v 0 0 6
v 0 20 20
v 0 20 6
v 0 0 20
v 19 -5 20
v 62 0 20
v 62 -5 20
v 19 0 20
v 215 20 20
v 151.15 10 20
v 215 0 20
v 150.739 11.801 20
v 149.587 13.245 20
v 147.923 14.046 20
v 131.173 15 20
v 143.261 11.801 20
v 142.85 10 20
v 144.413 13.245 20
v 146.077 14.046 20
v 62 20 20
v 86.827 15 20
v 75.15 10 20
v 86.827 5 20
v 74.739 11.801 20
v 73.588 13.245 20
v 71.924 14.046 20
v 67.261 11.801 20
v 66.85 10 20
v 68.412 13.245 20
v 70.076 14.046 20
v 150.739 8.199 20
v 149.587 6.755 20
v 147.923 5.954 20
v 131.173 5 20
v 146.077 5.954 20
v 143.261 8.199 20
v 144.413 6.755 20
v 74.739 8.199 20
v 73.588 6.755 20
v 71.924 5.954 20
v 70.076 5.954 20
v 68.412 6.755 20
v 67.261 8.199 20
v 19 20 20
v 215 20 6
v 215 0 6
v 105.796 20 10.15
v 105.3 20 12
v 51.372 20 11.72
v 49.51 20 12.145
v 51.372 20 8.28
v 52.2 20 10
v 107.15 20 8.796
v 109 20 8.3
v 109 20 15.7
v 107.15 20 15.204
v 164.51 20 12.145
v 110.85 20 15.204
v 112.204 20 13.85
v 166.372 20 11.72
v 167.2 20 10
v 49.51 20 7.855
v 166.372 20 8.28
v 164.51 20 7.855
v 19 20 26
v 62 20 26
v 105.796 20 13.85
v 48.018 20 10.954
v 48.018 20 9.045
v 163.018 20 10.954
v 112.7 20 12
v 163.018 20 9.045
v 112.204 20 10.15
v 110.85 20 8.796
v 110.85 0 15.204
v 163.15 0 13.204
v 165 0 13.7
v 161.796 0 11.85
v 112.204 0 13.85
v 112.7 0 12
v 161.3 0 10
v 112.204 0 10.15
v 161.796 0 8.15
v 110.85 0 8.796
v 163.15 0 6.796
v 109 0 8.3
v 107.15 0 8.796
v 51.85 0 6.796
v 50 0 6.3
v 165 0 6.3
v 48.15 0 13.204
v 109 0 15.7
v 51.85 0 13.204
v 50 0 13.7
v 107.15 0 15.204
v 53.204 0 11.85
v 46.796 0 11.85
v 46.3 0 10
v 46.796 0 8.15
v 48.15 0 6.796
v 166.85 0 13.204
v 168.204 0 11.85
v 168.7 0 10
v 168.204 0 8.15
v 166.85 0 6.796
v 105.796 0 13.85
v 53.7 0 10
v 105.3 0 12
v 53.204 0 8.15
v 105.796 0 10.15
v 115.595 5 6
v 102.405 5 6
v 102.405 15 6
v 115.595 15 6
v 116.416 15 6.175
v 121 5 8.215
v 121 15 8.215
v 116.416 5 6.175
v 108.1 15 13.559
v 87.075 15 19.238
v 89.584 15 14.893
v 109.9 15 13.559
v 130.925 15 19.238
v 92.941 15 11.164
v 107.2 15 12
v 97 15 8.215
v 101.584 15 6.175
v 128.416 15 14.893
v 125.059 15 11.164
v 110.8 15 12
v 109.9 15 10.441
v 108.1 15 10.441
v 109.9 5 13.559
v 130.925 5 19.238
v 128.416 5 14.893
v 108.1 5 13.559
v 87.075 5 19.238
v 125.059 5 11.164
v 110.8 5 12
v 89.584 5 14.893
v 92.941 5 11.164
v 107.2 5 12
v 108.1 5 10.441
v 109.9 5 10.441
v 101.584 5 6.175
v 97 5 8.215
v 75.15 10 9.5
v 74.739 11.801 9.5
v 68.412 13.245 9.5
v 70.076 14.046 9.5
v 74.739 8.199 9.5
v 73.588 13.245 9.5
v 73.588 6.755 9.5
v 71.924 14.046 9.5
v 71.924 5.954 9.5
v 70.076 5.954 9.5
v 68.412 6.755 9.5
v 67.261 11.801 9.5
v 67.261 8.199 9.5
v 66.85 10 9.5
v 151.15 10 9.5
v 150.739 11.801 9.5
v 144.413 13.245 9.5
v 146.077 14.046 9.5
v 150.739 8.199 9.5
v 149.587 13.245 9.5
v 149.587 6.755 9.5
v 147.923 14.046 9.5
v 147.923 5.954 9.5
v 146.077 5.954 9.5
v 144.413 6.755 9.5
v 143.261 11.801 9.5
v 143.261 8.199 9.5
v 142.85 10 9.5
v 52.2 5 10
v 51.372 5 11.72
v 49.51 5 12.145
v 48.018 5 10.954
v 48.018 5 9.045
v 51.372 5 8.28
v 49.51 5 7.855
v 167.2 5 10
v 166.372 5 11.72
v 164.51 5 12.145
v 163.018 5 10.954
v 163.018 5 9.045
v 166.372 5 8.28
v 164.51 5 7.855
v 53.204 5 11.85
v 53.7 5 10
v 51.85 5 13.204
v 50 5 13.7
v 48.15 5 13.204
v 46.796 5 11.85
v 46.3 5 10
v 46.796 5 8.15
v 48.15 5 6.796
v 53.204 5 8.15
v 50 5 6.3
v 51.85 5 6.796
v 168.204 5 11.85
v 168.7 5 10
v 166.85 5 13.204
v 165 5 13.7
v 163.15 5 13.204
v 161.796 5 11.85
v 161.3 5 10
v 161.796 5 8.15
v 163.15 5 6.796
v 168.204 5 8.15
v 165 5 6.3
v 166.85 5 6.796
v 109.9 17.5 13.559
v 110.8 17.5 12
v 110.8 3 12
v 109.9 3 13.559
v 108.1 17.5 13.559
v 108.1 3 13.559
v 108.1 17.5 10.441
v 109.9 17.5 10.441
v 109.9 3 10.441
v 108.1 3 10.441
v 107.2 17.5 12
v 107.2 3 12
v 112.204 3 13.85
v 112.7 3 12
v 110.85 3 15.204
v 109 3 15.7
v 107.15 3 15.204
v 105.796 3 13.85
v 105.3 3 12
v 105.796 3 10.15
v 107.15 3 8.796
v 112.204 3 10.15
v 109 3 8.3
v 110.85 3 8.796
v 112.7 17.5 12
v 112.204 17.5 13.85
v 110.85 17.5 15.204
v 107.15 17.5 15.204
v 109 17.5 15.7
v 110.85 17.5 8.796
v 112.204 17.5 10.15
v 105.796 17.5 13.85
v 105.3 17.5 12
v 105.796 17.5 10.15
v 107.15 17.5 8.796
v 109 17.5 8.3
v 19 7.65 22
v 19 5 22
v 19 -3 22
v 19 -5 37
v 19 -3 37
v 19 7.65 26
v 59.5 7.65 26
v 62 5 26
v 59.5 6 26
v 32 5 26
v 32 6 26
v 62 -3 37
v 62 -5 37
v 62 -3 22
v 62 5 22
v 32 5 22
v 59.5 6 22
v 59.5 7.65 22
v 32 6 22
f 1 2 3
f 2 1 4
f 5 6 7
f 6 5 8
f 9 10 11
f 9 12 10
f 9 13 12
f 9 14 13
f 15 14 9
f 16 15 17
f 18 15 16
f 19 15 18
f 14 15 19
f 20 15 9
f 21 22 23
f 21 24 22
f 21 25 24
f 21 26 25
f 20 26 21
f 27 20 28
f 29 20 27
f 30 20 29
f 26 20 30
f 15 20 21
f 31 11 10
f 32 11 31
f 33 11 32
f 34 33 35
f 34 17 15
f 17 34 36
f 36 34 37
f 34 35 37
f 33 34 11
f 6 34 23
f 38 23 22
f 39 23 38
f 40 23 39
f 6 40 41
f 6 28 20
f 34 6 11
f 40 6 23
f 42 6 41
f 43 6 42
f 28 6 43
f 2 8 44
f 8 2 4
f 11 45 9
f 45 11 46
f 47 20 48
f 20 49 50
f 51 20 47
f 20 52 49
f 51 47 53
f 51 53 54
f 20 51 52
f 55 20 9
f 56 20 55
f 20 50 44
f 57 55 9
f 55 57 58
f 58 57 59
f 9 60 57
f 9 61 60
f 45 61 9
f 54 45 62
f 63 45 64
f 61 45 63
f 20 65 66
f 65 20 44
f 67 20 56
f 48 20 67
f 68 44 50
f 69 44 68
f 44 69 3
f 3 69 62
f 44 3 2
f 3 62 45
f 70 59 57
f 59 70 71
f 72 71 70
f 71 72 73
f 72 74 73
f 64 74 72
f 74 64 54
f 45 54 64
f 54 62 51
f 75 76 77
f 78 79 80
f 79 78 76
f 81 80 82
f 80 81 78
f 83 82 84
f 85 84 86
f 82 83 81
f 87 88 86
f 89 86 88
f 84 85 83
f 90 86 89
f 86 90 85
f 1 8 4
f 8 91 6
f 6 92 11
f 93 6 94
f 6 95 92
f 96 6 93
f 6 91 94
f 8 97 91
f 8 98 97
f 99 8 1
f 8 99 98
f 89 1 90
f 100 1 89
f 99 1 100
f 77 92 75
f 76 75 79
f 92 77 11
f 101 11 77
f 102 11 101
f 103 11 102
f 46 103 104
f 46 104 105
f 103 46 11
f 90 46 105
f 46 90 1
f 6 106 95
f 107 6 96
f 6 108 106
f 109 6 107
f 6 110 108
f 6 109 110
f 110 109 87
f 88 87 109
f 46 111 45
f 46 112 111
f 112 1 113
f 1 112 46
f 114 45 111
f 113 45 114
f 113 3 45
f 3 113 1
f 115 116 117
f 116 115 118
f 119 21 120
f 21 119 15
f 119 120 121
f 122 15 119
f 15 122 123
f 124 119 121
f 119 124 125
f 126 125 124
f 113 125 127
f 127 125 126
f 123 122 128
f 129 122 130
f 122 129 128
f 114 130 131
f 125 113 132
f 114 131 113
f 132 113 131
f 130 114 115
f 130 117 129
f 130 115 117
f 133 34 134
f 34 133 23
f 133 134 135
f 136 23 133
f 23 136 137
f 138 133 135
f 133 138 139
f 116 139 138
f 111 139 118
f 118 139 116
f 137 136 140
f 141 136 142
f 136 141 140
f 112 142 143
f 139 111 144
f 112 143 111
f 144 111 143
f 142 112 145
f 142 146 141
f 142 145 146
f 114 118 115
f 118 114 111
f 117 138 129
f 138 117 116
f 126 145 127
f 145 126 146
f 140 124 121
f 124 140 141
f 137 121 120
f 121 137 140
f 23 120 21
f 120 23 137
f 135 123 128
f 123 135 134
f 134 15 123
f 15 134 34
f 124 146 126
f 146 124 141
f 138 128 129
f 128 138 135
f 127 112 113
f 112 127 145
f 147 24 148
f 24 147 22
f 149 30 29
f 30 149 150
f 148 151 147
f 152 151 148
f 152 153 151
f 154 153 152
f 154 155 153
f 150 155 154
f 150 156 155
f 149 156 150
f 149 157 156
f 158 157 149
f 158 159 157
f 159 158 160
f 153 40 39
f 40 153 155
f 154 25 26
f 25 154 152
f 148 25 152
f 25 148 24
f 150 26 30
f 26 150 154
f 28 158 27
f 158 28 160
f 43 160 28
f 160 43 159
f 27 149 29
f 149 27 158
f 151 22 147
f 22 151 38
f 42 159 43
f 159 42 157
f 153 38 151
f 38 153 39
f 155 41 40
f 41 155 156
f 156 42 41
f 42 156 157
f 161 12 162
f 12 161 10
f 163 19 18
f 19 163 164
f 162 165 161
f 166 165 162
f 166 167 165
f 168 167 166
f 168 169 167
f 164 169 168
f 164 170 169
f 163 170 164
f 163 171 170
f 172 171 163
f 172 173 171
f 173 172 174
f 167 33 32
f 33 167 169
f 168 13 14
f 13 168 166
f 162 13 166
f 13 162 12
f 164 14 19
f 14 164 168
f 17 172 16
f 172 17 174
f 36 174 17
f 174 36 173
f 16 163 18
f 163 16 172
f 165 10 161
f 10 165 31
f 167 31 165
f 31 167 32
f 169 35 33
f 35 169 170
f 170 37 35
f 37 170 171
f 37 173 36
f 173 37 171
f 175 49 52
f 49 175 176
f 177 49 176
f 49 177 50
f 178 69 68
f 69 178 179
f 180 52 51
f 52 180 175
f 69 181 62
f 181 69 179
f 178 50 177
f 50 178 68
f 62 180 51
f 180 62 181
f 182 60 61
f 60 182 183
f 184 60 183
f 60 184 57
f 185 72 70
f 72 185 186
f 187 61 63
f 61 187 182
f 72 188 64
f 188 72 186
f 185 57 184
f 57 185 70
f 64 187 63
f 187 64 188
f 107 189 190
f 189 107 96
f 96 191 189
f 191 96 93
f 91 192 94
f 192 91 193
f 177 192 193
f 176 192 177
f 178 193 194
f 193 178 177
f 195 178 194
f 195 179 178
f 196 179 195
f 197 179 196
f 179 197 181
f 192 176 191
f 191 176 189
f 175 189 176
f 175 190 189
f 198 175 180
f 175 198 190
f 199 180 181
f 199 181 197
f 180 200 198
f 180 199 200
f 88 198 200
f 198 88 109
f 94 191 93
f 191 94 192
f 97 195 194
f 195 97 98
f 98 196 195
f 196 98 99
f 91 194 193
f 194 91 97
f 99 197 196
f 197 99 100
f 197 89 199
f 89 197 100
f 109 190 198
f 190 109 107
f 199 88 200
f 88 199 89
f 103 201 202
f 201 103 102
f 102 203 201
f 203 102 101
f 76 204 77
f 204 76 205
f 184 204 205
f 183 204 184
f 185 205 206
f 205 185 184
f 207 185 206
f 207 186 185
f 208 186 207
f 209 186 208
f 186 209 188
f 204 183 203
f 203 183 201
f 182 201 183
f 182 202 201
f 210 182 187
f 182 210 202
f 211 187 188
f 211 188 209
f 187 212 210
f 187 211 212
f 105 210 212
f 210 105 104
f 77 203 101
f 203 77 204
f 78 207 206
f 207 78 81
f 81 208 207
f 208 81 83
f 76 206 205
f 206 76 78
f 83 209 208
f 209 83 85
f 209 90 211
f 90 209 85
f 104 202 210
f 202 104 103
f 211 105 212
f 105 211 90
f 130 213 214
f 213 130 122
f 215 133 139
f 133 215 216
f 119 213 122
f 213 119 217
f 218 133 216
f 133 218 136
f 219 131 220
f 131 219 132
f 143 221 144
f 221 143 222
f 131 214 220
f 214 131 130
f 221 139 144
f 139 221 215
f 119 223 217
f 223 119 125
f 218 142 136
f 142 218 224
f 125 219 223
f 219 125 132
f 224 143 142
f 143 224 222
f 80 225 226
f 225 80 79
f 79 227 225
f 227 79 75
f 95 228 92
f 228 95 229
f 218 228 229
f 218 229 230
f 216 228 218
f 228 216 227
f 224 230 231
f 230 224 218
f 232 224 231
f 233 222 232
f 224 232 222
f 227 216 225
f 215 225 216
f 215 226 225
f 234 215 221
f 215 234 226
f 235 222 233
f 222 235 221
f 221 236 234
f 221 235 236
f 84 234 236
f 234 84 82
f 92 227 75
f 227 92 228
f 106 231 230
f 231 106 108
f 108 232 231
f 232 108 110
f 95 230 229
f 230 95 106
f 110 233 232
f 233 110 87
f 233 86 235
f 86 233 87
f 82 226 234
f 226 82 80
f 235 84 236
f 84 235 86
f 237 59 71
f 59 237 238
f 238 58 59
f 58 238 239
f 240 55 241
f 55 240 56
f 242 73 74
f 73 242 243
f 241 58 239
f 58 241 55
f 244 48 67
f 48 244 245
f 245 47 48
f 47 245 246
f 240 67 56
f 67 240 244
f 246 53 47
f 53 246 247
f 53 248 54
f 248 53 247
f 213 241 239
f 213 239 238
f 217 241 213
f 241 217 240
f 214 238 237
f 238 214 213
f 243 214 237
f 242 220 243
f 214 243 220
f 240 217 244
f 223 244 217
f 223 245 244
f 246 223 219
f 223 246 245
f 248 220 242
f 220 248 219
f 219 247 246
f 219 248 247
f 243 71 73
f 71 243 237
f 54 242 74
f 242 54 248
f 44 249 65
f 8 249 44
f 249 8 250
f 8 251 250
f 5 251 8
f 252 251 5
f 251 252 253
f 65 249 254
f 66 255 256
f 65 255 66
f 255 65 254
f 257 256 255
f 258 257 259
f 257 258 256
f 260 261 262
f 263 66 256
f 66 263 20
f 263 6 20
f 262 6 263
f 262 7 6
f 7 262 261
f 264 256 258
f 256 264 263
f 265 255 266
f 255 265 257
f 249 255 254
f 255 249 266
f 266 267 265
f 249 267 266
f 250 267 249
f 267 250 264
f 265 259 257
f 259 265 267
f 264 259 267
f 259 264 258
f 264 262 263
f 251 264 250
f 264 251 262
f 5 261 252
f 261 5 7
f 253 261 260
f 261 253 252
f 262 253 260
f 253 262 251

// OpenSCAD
// Y-end

x=215;

difference() {
    cube([215,20,20]);
    cube([215, 20, 6]);
    translate([109,15,29])
    rotate([90,0,0])
    cylinder(h=10, r=24);
//holes for 8-mm rods
    translate([71,10,9.5])
    cylinder (h = 20, r=4.15);
    translate([147,10,9.5])
    cylinder (h = 20, r=4.15); 
// M4 screws
    rotate([90,0,0])
    translate([50,10,-25])
    cylinder (h = 40, r = 2.2); 
    rotate([90,0,0]) 
    translate([x-50,10,-25])
    cylinder (h = 40, r=2.2);
//sinkings for M4   
    rotate([90,0,0])
    translate([50,10,-5])
    cylinder (h = 20, r=3.7);
    rotate([90,0,0])
    translate([x-50,10,-5])
    cylinder (h=20, r=3.7);
//hole for ball bearing screw
    rotate([90,0,0])
    translate([109,12,-30])
    cylinder (h=40, r=1.8); 
//sinkings for bearing screw
    rotate([90,0,0])
    translate([109,12,-3])
    cylinder (h=10, r=3.7);
    rotate([90,0,0])
    translate([109,12,-27.5])
    cylinder (h=10, r=3.7);
}
y_endstop();

module y_endstop() {
difference() {
    translate([19,5,20])
    cube([43,15,6]);
    translate([19,6,22])
    cube([40.5,1.65,4]);
    translate([19,5,22])
    cube([13,2,4]);
    }
translate([19,-5, 20])
cube([43, 10, 2]);
translate([19, -5, 20])
cube([43, 2, 17]);
}
